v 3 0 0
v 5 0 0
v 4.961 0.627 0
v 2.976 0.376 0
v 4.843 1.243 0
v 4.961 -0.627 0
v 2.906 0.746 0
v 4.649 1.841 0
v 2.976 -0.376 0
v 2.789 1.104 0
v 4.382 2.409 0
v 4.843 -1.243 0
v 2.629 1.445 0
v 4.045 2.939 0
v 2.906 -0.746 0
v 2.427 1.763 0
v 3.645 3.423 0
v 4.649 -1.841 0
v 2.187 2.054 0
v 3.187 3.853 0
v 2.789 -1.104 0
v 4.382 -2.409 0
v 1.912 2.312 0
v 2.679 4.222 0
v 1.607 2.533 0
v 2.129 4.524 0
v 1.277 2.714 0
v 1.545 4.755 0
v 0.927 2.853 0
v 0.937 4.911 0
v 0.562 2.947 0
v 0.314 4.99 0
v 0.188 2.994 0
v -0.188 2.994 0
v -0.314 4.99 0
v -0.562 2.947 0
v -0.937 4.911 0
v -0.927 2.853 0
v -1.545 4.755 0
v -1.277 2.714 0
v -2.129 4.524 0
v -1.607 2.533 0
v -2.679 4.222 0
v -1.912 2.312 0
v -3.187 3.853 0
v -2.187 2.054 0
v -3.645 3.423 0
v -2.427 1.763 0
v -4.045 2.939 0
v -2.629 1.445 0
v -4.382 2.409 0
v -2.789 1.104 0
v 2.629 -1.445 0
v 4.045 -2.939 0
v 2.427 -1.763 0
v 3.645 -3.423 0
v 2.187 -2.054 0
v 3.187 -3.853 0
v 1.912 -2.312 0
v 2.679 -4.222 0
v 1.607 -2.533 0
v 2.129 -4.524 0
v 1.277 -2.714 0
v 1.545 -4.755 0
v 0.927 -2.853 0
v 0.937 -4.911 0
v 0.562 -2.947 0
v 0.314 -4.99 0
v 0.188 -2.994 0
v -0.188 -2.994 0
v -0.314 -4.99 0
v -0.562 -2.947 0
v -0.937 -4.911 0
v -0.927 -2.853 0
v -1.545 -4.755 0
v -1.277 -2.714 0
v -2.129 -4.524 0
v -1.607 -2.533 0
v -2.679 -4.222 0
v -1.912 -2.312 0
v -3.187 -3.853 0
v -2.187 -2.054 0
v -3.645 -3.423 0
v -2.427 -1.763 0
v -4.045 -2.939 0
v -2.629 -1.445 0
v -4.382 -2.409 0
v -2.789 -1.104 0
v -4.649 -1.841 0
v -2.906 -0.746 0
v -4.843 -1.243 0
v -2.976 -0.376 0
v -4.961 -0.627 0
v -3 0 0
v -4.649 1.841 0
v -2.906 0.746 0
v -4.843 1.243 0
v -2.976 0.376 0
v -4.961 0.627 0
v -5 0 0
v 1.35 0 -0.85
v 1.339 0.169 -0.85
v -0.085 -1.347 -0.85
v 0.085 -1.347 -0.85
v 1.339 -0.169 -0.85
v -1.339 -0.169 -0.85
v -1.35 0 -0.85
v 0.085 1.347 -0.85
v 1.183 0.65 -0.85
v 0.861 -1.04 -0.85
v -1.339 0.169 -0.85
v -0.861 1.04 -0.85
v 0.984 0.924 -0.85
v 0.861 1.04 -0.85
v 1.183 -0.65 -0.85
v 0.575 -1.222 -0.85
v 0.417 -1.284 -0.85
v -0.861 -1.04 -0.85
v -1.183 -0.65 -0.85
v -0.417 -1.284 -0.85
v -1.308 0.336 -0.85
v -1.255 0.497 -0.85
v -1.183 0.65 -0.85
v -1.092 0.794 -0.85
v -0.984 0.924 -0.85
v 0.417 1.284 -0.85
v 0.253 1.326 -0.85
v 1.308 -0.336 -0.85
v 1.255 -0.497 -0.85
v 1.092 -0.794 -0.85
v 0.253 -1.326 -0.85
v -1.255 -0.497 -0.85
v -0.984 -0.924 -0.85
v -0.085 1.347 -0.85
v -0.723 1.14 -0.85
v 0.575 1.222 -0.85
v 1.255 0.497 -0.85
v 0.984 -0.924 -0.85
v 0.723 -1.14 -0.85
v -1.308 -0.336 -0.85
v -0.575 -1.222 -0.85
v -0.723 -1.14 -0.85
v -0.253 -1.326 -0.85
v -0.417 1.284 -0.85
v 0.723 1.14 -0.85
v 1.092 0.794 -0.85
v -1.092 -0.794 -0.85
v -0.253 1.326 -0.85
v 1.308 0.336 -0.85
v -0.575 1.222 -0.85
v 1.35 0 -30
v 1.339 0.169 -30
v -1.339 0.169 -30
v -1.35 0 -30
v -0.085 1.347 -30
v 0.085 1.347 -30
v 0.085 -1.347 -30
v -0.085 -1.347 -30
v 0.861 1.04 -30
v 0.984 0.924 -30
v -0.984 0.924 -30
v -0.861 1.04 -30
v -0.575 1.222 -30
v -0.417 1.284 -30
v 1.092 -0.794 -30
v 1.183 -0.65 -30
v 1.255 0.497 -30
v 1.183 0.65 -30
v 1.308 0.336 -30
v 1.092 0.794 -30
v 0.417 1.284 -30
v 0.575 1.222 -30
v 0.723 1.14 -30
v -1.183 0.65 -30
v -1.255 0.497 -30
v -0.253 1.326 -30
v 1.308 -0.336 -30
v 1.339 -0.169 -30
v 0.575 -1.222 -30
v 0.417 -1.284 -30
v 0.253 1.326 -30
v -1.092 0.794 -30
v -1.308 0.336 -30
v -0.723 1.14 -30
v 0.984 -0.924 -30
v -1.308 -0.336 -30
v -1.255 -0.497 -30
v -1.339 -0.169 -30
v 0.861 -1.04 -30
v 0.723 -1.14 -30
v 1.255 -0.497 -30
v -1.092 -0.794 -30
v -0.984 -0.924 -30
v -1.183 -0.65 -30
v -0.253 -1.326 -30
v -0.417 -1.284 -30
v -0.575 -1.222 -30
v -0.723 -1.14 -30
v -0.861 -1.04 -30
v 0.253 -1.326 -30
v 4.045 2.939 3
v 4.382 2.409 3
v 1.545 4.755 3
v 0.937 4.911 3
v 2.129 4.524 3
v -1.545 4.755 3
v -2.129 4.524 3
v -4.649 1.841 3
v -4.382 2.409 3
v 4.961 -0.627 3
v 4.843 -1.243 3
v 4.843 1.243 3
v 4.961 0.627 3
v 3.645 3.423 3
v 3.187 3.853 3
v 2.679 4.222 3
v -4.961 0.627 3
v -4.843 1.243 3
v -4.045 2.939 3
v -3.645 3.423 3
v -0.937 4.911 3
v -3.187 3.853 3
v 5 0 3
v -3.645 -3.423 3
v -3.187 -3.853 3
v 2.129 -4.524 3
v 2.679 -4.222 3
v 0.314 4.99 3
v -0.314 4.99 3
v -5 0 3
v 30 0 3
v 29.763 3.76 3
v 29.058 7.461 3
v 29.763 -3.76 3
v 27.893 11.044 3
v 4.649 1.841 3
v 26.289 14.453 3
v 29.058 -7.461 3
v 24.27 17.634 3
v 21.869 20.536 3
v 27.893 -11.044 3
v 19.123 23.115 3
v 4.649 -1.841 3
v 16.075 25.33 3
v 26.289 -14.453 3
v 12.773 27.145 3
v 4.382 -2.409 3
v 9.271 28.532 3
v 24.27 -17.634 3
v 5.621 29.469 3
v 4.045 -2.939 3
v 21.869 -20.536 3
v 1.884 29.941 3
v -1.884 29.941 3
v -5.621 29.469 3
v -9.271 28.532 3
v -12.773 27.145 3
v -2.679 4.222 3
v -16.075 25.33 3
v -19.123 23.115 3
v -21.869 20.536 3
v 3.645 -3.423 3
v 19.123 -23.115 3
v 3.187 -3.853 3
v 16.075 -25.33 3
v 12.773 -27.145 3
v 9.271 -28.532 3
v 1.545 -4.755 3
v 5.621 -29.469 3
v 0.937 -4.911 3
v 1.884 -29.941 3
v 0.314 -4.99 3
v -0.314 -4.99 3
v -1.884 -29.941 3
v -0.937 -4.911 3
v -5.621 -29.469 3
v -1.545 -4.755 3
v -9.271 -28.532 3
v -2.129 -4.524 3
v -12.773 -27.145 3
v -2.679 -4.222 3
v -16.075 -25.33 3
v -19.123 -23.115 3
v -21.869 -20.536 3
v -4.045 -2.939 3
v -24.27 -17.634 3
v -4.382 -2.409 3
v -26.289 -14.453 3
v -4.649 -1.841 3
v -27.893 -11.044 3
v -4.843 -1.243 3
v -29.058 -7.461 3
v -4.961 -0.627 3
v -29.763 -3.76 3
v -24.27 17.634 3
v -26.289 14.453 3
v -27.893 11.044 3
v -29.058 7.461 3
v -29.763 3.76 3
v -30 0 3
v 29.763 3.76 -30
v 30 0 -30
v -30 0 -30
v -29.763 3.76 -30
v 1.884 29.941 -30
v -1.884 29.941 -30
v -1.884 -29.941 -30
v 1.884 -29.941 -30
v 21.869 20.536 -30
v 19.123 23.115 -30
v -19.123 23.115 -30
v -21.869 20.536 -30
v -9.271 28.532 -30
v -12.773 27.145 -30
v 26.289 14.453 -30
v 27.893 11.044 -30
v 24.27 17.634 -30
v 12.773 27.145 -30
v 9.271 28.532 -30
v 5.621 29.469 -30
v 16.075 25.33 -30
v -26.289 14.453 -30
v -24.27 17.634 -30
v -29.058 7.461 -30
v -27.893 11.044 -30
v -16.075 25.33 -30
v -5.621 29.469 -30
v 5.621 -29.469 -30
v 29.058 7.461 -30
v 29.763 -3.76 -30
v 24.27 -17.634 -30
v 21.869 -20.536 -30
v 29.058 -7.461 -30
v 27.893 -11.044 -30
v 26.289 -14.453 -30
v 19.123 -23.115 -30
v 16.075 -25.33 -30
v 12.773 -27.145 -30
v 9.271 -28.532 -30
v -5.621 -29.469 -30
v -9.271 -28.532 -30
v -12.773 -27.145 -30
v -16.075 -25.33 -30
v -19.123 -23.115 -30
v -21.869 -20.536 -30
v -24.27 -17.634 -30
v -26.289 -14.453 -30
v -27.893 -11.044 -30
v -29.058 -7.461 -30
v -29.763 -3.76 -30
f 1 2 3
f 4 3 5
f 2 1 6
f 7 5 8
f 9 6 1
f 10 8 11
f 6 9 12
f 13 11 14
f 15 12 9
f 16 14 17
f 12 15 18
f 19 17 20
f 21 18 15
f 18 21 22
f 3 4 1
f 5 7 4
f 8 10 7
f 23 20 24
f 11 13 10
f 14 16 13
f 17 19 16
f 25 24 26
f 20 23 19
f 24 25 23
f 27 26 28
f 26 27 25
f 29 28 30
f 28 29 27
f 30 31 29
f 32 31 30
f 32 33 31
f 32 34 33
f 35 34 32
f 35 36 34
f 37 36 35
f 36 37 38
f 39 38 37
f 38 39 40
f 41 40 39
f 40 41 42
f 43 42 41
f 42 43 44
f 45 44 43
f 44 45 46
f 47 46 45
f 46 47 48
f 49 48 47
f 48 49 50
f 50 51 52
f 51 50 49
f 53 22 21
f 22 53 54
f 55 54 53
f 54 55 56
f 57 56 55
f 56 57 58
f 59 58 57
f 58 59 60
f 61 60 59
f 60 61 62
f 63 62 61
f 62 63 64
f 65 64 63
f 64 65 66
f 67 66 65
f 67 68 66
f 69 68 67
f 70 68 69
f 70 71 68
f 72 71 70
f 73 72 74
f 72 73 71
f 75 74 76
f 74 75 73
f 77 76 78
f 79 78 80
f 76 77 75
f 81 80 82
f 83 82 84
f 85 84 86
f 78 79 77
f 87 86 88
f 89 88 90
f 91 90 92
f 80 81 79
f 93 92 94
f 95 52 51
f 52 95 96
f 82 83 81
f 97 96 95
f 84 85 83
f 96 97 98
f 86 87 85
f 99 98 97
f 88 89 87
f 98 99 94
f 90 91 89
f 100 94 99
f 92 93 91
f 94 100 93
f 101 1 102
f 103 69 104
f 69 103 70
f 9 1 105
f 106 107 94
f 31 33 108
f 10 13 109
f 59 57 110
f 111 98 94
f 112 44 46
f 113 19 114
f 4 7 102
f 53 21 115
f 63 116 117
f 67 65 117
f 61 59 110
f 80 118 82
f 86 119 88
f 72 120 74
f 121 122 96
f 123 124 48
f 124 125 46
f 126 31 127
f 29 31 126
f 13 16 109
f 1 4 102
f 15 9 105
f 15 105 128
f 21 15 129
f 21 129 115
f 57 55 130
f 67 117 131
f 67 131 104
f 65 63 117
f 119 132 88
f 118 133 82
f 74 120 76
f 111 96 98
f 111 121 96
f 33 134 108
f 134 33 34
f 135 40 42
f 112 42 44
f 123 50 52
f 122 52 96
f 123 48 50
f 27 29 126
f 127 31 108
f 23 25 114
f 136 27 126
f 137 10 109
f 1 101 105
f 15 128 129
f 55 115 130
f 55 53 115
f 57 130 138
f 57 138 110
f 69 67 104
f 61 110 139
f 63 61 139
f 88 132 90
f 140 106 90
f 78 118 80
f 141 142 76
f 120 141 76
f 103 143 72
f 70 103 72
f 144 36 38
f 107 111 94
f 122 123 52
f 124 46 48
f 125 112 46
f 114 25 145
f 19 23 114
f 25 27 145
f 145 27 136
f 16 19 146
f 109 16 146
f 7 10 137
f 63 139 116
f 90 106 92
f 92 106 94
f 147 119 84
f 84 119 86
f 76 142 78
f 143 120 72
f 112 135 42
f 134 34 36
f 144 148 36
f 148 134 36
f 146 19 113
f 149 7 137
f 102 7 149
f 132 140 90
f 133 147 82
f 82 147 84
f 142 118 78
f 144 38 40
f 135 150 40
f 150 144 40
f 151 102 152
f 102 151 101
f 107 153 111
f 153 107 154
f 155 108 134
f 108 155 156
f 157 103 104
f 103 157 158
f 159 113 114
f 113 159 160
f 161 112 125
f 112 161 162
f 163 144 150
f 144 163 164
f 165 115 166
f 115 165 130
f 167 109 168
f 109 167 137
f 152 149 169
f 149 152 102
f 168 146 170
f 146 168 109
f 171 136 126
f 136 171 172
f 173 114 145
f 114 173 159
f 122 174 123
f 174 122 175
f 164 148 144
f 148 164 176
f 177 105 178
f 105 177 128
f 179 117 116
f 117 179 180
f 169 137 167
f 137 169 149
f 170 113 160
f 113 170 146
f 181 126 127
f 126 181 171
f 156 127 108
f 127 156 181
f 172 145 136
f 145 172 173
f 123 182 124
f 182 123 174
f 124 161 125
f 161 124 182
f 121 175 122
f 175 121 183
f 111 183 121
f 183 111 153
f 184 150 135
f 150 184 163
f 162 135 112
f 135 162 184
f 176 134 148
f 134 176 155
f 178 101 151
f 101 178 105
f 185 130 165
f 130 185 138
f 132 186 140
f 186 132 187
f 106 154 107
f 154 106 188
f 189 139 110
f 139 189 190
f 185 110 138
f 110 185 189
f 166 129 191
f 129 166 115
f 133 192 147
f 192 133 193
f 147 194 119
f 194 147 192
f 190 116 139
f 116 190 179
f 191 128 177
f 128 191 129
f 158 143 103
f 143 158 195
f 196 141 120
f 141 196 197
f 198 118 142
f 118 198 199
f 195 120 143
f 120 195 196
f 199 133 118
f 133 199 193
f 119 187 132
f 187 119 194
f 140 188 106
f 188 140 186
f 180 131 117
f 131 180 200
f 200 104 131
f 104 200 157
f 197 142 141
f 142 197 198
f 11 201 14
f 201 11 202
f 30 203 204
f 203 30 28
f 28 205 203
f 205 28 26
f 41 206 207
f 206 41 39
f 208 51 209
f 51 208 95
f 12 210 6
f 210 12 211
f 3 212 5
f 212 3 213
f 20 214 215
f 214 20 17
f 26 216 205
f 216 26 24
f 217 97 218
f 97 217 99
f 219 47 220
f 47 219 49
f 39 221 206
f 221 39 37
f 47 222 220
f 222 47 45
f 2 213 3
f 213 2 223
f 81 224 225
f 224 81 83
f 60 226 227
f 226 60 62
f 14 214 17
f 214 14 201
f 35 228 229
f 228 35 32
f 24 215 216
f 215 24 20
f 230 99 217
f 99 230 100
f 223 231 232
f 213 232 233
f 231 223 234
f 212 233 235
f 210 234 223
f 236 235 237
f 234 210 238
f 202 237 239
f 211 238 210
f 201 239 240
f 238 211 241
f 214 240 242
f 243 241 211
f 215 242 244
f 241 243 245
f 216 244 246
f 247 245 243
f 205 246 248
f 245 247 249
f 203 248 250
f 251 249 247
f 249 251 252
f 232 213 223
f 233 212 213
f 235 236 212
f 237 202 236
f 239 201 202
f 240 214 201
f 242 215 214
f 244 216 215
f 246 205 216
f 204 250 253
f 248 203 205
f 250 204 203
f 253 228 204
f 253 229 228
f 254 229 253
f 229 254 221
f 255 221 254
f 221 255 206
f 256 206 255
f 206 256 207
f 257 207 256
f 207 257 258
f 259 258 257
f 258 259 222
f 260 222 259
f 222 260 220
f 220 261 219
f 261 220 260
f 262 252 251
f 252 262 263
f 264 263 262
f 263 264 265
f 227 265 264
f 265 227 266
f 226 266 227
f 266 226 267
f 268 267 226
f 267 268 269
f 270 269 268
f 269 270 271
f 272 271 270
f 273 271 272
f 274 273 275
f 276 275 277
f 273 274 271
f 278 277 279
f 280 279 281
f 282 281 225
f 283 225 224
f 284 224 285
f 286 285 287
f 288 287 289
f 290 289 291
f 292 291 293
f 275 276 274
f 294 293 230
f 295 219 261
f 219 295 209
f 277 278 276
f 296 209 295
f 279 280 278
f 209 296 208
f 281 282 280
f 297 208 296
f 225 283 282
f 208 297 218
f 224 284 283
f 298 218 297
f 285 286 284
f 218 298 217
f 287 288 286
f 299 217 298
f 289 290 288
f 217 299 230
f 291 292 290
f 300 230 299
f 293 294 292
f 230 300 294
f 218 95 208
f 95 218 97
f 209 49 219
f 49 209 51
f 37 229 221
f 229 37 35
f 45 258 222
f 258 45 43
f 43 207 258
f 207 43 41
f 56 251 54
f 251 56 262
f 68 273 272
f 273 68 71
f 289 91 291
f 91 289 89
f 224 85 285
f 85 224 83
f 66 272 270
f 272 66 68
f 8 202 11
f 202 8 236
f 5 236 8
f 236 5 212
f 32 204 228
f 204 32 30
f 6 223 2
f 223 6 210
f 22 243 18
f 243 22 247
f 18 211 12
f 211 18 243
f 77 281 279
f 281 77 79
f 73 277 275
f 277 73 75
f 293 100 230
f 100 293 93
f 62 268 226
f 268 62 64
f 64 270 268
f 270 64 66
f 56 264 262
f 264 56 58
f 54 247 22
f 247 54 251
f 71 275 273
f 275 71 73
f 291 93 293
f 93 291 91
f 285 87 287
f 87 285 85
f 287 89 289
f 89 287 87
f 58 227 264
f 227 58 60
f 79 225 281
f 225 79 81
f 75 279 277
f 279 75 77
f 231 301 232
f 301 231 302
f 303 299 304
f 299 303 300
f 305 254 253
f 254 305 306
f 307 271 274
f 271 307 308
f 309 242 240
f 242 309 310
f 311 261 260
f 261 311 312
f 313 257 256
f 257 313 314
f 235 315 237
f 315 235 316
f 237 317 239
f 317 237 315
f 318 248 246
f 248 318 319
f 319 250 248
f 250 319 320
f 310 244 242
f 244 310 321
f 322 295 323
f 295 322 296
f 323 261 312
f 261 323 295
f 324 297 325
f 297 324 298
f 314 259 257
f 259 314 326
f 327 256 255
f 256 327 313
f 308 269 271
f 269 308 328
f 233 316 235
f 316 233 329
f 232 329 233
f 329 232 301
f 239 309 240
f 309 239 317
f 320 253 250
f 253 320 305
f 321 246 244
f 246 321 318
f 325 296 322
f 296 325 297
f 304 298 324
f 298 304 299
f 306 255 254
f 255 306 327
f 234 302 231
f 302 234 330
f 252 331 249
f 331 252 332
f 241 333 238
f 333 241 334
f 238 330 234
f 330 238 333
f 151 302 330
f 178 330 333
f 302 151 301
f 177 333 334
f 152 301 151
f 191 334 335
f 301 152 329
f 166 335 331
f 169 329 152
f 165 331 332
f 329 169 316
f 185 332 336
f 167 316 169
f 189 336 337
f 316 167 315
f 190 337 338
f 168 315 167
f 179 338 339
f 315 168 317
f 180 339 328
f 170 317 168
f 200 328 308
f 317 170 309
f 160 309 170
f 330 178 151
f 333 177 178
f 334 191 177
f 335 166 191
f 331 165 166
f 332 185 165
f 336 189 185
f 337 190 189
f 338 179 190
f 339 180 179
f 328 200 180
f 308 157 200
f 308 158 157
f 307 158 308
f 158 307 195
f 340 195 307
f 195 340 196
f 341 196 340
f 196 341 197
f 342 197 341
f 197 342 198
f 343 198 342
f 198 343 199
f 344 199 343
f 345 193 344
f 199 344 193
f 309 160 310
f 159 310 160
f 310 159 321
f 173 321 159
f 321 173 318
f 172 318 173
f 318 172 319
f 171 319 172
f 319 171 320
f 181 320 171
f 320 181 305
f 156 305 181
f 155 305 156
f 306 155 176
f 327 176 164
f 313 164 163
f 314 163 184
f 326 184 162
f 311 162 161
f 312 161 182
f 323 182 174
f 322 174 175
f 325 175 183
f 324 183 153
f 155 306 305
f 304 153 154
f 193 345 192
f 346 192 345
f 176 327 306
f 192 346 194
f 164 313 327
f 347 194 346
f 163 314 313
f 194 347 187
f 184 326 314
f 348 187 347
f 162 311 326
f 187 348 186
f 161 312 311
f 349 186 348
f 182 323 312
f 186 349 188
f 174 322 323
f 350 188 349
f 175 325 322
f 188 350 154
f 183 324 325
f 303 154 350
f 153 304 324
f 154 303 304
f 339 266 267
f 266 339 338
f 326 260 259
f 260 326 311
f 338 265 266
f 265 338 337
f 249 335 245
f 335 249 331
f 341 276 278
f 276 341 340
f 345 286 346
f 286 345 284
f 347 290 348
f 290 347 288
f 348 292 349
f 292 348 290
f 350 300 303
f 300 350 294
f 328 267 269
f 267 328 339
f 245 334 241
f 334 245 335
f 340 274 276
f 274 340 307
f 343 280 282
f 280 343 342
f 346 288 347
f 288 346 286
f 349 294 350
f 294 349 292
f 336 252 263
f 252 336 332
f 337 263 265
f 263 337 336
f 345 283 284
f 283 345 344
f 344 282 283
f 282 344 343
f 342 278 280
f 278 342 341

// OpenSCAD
$fn = 50;

difference() {
	union() {
		translate(v = [0, 0, -30.0]) {
			cylinder(h = 33, r = 30.0);
		}
	}
	union() {
		translate(v = [0, 0, 0]) {
			rotate(a = [0, 0, 0]) {
				difference() {
					union() {
						translate(v = [0, 0, -33.0]) {
							cylinder(h = 33, r = 1.0);
						}
						translate(v = [0, 0, -0.85]) {
							cylinder(h = 0.85, r1 = 1.35, r2 = 3.0);
						}
						translate(v = [0, 0, -33.0]) {
							cylinder(h = 33, r = 1.35);
						}
						translate(v = [0, 0, -33.0]) {
							cylinder(h = 33, r = 1.0);
						}
					}
					union();
				}
			}
		}
		#cylinder(h = 3, r = 5.0);
	}
}
